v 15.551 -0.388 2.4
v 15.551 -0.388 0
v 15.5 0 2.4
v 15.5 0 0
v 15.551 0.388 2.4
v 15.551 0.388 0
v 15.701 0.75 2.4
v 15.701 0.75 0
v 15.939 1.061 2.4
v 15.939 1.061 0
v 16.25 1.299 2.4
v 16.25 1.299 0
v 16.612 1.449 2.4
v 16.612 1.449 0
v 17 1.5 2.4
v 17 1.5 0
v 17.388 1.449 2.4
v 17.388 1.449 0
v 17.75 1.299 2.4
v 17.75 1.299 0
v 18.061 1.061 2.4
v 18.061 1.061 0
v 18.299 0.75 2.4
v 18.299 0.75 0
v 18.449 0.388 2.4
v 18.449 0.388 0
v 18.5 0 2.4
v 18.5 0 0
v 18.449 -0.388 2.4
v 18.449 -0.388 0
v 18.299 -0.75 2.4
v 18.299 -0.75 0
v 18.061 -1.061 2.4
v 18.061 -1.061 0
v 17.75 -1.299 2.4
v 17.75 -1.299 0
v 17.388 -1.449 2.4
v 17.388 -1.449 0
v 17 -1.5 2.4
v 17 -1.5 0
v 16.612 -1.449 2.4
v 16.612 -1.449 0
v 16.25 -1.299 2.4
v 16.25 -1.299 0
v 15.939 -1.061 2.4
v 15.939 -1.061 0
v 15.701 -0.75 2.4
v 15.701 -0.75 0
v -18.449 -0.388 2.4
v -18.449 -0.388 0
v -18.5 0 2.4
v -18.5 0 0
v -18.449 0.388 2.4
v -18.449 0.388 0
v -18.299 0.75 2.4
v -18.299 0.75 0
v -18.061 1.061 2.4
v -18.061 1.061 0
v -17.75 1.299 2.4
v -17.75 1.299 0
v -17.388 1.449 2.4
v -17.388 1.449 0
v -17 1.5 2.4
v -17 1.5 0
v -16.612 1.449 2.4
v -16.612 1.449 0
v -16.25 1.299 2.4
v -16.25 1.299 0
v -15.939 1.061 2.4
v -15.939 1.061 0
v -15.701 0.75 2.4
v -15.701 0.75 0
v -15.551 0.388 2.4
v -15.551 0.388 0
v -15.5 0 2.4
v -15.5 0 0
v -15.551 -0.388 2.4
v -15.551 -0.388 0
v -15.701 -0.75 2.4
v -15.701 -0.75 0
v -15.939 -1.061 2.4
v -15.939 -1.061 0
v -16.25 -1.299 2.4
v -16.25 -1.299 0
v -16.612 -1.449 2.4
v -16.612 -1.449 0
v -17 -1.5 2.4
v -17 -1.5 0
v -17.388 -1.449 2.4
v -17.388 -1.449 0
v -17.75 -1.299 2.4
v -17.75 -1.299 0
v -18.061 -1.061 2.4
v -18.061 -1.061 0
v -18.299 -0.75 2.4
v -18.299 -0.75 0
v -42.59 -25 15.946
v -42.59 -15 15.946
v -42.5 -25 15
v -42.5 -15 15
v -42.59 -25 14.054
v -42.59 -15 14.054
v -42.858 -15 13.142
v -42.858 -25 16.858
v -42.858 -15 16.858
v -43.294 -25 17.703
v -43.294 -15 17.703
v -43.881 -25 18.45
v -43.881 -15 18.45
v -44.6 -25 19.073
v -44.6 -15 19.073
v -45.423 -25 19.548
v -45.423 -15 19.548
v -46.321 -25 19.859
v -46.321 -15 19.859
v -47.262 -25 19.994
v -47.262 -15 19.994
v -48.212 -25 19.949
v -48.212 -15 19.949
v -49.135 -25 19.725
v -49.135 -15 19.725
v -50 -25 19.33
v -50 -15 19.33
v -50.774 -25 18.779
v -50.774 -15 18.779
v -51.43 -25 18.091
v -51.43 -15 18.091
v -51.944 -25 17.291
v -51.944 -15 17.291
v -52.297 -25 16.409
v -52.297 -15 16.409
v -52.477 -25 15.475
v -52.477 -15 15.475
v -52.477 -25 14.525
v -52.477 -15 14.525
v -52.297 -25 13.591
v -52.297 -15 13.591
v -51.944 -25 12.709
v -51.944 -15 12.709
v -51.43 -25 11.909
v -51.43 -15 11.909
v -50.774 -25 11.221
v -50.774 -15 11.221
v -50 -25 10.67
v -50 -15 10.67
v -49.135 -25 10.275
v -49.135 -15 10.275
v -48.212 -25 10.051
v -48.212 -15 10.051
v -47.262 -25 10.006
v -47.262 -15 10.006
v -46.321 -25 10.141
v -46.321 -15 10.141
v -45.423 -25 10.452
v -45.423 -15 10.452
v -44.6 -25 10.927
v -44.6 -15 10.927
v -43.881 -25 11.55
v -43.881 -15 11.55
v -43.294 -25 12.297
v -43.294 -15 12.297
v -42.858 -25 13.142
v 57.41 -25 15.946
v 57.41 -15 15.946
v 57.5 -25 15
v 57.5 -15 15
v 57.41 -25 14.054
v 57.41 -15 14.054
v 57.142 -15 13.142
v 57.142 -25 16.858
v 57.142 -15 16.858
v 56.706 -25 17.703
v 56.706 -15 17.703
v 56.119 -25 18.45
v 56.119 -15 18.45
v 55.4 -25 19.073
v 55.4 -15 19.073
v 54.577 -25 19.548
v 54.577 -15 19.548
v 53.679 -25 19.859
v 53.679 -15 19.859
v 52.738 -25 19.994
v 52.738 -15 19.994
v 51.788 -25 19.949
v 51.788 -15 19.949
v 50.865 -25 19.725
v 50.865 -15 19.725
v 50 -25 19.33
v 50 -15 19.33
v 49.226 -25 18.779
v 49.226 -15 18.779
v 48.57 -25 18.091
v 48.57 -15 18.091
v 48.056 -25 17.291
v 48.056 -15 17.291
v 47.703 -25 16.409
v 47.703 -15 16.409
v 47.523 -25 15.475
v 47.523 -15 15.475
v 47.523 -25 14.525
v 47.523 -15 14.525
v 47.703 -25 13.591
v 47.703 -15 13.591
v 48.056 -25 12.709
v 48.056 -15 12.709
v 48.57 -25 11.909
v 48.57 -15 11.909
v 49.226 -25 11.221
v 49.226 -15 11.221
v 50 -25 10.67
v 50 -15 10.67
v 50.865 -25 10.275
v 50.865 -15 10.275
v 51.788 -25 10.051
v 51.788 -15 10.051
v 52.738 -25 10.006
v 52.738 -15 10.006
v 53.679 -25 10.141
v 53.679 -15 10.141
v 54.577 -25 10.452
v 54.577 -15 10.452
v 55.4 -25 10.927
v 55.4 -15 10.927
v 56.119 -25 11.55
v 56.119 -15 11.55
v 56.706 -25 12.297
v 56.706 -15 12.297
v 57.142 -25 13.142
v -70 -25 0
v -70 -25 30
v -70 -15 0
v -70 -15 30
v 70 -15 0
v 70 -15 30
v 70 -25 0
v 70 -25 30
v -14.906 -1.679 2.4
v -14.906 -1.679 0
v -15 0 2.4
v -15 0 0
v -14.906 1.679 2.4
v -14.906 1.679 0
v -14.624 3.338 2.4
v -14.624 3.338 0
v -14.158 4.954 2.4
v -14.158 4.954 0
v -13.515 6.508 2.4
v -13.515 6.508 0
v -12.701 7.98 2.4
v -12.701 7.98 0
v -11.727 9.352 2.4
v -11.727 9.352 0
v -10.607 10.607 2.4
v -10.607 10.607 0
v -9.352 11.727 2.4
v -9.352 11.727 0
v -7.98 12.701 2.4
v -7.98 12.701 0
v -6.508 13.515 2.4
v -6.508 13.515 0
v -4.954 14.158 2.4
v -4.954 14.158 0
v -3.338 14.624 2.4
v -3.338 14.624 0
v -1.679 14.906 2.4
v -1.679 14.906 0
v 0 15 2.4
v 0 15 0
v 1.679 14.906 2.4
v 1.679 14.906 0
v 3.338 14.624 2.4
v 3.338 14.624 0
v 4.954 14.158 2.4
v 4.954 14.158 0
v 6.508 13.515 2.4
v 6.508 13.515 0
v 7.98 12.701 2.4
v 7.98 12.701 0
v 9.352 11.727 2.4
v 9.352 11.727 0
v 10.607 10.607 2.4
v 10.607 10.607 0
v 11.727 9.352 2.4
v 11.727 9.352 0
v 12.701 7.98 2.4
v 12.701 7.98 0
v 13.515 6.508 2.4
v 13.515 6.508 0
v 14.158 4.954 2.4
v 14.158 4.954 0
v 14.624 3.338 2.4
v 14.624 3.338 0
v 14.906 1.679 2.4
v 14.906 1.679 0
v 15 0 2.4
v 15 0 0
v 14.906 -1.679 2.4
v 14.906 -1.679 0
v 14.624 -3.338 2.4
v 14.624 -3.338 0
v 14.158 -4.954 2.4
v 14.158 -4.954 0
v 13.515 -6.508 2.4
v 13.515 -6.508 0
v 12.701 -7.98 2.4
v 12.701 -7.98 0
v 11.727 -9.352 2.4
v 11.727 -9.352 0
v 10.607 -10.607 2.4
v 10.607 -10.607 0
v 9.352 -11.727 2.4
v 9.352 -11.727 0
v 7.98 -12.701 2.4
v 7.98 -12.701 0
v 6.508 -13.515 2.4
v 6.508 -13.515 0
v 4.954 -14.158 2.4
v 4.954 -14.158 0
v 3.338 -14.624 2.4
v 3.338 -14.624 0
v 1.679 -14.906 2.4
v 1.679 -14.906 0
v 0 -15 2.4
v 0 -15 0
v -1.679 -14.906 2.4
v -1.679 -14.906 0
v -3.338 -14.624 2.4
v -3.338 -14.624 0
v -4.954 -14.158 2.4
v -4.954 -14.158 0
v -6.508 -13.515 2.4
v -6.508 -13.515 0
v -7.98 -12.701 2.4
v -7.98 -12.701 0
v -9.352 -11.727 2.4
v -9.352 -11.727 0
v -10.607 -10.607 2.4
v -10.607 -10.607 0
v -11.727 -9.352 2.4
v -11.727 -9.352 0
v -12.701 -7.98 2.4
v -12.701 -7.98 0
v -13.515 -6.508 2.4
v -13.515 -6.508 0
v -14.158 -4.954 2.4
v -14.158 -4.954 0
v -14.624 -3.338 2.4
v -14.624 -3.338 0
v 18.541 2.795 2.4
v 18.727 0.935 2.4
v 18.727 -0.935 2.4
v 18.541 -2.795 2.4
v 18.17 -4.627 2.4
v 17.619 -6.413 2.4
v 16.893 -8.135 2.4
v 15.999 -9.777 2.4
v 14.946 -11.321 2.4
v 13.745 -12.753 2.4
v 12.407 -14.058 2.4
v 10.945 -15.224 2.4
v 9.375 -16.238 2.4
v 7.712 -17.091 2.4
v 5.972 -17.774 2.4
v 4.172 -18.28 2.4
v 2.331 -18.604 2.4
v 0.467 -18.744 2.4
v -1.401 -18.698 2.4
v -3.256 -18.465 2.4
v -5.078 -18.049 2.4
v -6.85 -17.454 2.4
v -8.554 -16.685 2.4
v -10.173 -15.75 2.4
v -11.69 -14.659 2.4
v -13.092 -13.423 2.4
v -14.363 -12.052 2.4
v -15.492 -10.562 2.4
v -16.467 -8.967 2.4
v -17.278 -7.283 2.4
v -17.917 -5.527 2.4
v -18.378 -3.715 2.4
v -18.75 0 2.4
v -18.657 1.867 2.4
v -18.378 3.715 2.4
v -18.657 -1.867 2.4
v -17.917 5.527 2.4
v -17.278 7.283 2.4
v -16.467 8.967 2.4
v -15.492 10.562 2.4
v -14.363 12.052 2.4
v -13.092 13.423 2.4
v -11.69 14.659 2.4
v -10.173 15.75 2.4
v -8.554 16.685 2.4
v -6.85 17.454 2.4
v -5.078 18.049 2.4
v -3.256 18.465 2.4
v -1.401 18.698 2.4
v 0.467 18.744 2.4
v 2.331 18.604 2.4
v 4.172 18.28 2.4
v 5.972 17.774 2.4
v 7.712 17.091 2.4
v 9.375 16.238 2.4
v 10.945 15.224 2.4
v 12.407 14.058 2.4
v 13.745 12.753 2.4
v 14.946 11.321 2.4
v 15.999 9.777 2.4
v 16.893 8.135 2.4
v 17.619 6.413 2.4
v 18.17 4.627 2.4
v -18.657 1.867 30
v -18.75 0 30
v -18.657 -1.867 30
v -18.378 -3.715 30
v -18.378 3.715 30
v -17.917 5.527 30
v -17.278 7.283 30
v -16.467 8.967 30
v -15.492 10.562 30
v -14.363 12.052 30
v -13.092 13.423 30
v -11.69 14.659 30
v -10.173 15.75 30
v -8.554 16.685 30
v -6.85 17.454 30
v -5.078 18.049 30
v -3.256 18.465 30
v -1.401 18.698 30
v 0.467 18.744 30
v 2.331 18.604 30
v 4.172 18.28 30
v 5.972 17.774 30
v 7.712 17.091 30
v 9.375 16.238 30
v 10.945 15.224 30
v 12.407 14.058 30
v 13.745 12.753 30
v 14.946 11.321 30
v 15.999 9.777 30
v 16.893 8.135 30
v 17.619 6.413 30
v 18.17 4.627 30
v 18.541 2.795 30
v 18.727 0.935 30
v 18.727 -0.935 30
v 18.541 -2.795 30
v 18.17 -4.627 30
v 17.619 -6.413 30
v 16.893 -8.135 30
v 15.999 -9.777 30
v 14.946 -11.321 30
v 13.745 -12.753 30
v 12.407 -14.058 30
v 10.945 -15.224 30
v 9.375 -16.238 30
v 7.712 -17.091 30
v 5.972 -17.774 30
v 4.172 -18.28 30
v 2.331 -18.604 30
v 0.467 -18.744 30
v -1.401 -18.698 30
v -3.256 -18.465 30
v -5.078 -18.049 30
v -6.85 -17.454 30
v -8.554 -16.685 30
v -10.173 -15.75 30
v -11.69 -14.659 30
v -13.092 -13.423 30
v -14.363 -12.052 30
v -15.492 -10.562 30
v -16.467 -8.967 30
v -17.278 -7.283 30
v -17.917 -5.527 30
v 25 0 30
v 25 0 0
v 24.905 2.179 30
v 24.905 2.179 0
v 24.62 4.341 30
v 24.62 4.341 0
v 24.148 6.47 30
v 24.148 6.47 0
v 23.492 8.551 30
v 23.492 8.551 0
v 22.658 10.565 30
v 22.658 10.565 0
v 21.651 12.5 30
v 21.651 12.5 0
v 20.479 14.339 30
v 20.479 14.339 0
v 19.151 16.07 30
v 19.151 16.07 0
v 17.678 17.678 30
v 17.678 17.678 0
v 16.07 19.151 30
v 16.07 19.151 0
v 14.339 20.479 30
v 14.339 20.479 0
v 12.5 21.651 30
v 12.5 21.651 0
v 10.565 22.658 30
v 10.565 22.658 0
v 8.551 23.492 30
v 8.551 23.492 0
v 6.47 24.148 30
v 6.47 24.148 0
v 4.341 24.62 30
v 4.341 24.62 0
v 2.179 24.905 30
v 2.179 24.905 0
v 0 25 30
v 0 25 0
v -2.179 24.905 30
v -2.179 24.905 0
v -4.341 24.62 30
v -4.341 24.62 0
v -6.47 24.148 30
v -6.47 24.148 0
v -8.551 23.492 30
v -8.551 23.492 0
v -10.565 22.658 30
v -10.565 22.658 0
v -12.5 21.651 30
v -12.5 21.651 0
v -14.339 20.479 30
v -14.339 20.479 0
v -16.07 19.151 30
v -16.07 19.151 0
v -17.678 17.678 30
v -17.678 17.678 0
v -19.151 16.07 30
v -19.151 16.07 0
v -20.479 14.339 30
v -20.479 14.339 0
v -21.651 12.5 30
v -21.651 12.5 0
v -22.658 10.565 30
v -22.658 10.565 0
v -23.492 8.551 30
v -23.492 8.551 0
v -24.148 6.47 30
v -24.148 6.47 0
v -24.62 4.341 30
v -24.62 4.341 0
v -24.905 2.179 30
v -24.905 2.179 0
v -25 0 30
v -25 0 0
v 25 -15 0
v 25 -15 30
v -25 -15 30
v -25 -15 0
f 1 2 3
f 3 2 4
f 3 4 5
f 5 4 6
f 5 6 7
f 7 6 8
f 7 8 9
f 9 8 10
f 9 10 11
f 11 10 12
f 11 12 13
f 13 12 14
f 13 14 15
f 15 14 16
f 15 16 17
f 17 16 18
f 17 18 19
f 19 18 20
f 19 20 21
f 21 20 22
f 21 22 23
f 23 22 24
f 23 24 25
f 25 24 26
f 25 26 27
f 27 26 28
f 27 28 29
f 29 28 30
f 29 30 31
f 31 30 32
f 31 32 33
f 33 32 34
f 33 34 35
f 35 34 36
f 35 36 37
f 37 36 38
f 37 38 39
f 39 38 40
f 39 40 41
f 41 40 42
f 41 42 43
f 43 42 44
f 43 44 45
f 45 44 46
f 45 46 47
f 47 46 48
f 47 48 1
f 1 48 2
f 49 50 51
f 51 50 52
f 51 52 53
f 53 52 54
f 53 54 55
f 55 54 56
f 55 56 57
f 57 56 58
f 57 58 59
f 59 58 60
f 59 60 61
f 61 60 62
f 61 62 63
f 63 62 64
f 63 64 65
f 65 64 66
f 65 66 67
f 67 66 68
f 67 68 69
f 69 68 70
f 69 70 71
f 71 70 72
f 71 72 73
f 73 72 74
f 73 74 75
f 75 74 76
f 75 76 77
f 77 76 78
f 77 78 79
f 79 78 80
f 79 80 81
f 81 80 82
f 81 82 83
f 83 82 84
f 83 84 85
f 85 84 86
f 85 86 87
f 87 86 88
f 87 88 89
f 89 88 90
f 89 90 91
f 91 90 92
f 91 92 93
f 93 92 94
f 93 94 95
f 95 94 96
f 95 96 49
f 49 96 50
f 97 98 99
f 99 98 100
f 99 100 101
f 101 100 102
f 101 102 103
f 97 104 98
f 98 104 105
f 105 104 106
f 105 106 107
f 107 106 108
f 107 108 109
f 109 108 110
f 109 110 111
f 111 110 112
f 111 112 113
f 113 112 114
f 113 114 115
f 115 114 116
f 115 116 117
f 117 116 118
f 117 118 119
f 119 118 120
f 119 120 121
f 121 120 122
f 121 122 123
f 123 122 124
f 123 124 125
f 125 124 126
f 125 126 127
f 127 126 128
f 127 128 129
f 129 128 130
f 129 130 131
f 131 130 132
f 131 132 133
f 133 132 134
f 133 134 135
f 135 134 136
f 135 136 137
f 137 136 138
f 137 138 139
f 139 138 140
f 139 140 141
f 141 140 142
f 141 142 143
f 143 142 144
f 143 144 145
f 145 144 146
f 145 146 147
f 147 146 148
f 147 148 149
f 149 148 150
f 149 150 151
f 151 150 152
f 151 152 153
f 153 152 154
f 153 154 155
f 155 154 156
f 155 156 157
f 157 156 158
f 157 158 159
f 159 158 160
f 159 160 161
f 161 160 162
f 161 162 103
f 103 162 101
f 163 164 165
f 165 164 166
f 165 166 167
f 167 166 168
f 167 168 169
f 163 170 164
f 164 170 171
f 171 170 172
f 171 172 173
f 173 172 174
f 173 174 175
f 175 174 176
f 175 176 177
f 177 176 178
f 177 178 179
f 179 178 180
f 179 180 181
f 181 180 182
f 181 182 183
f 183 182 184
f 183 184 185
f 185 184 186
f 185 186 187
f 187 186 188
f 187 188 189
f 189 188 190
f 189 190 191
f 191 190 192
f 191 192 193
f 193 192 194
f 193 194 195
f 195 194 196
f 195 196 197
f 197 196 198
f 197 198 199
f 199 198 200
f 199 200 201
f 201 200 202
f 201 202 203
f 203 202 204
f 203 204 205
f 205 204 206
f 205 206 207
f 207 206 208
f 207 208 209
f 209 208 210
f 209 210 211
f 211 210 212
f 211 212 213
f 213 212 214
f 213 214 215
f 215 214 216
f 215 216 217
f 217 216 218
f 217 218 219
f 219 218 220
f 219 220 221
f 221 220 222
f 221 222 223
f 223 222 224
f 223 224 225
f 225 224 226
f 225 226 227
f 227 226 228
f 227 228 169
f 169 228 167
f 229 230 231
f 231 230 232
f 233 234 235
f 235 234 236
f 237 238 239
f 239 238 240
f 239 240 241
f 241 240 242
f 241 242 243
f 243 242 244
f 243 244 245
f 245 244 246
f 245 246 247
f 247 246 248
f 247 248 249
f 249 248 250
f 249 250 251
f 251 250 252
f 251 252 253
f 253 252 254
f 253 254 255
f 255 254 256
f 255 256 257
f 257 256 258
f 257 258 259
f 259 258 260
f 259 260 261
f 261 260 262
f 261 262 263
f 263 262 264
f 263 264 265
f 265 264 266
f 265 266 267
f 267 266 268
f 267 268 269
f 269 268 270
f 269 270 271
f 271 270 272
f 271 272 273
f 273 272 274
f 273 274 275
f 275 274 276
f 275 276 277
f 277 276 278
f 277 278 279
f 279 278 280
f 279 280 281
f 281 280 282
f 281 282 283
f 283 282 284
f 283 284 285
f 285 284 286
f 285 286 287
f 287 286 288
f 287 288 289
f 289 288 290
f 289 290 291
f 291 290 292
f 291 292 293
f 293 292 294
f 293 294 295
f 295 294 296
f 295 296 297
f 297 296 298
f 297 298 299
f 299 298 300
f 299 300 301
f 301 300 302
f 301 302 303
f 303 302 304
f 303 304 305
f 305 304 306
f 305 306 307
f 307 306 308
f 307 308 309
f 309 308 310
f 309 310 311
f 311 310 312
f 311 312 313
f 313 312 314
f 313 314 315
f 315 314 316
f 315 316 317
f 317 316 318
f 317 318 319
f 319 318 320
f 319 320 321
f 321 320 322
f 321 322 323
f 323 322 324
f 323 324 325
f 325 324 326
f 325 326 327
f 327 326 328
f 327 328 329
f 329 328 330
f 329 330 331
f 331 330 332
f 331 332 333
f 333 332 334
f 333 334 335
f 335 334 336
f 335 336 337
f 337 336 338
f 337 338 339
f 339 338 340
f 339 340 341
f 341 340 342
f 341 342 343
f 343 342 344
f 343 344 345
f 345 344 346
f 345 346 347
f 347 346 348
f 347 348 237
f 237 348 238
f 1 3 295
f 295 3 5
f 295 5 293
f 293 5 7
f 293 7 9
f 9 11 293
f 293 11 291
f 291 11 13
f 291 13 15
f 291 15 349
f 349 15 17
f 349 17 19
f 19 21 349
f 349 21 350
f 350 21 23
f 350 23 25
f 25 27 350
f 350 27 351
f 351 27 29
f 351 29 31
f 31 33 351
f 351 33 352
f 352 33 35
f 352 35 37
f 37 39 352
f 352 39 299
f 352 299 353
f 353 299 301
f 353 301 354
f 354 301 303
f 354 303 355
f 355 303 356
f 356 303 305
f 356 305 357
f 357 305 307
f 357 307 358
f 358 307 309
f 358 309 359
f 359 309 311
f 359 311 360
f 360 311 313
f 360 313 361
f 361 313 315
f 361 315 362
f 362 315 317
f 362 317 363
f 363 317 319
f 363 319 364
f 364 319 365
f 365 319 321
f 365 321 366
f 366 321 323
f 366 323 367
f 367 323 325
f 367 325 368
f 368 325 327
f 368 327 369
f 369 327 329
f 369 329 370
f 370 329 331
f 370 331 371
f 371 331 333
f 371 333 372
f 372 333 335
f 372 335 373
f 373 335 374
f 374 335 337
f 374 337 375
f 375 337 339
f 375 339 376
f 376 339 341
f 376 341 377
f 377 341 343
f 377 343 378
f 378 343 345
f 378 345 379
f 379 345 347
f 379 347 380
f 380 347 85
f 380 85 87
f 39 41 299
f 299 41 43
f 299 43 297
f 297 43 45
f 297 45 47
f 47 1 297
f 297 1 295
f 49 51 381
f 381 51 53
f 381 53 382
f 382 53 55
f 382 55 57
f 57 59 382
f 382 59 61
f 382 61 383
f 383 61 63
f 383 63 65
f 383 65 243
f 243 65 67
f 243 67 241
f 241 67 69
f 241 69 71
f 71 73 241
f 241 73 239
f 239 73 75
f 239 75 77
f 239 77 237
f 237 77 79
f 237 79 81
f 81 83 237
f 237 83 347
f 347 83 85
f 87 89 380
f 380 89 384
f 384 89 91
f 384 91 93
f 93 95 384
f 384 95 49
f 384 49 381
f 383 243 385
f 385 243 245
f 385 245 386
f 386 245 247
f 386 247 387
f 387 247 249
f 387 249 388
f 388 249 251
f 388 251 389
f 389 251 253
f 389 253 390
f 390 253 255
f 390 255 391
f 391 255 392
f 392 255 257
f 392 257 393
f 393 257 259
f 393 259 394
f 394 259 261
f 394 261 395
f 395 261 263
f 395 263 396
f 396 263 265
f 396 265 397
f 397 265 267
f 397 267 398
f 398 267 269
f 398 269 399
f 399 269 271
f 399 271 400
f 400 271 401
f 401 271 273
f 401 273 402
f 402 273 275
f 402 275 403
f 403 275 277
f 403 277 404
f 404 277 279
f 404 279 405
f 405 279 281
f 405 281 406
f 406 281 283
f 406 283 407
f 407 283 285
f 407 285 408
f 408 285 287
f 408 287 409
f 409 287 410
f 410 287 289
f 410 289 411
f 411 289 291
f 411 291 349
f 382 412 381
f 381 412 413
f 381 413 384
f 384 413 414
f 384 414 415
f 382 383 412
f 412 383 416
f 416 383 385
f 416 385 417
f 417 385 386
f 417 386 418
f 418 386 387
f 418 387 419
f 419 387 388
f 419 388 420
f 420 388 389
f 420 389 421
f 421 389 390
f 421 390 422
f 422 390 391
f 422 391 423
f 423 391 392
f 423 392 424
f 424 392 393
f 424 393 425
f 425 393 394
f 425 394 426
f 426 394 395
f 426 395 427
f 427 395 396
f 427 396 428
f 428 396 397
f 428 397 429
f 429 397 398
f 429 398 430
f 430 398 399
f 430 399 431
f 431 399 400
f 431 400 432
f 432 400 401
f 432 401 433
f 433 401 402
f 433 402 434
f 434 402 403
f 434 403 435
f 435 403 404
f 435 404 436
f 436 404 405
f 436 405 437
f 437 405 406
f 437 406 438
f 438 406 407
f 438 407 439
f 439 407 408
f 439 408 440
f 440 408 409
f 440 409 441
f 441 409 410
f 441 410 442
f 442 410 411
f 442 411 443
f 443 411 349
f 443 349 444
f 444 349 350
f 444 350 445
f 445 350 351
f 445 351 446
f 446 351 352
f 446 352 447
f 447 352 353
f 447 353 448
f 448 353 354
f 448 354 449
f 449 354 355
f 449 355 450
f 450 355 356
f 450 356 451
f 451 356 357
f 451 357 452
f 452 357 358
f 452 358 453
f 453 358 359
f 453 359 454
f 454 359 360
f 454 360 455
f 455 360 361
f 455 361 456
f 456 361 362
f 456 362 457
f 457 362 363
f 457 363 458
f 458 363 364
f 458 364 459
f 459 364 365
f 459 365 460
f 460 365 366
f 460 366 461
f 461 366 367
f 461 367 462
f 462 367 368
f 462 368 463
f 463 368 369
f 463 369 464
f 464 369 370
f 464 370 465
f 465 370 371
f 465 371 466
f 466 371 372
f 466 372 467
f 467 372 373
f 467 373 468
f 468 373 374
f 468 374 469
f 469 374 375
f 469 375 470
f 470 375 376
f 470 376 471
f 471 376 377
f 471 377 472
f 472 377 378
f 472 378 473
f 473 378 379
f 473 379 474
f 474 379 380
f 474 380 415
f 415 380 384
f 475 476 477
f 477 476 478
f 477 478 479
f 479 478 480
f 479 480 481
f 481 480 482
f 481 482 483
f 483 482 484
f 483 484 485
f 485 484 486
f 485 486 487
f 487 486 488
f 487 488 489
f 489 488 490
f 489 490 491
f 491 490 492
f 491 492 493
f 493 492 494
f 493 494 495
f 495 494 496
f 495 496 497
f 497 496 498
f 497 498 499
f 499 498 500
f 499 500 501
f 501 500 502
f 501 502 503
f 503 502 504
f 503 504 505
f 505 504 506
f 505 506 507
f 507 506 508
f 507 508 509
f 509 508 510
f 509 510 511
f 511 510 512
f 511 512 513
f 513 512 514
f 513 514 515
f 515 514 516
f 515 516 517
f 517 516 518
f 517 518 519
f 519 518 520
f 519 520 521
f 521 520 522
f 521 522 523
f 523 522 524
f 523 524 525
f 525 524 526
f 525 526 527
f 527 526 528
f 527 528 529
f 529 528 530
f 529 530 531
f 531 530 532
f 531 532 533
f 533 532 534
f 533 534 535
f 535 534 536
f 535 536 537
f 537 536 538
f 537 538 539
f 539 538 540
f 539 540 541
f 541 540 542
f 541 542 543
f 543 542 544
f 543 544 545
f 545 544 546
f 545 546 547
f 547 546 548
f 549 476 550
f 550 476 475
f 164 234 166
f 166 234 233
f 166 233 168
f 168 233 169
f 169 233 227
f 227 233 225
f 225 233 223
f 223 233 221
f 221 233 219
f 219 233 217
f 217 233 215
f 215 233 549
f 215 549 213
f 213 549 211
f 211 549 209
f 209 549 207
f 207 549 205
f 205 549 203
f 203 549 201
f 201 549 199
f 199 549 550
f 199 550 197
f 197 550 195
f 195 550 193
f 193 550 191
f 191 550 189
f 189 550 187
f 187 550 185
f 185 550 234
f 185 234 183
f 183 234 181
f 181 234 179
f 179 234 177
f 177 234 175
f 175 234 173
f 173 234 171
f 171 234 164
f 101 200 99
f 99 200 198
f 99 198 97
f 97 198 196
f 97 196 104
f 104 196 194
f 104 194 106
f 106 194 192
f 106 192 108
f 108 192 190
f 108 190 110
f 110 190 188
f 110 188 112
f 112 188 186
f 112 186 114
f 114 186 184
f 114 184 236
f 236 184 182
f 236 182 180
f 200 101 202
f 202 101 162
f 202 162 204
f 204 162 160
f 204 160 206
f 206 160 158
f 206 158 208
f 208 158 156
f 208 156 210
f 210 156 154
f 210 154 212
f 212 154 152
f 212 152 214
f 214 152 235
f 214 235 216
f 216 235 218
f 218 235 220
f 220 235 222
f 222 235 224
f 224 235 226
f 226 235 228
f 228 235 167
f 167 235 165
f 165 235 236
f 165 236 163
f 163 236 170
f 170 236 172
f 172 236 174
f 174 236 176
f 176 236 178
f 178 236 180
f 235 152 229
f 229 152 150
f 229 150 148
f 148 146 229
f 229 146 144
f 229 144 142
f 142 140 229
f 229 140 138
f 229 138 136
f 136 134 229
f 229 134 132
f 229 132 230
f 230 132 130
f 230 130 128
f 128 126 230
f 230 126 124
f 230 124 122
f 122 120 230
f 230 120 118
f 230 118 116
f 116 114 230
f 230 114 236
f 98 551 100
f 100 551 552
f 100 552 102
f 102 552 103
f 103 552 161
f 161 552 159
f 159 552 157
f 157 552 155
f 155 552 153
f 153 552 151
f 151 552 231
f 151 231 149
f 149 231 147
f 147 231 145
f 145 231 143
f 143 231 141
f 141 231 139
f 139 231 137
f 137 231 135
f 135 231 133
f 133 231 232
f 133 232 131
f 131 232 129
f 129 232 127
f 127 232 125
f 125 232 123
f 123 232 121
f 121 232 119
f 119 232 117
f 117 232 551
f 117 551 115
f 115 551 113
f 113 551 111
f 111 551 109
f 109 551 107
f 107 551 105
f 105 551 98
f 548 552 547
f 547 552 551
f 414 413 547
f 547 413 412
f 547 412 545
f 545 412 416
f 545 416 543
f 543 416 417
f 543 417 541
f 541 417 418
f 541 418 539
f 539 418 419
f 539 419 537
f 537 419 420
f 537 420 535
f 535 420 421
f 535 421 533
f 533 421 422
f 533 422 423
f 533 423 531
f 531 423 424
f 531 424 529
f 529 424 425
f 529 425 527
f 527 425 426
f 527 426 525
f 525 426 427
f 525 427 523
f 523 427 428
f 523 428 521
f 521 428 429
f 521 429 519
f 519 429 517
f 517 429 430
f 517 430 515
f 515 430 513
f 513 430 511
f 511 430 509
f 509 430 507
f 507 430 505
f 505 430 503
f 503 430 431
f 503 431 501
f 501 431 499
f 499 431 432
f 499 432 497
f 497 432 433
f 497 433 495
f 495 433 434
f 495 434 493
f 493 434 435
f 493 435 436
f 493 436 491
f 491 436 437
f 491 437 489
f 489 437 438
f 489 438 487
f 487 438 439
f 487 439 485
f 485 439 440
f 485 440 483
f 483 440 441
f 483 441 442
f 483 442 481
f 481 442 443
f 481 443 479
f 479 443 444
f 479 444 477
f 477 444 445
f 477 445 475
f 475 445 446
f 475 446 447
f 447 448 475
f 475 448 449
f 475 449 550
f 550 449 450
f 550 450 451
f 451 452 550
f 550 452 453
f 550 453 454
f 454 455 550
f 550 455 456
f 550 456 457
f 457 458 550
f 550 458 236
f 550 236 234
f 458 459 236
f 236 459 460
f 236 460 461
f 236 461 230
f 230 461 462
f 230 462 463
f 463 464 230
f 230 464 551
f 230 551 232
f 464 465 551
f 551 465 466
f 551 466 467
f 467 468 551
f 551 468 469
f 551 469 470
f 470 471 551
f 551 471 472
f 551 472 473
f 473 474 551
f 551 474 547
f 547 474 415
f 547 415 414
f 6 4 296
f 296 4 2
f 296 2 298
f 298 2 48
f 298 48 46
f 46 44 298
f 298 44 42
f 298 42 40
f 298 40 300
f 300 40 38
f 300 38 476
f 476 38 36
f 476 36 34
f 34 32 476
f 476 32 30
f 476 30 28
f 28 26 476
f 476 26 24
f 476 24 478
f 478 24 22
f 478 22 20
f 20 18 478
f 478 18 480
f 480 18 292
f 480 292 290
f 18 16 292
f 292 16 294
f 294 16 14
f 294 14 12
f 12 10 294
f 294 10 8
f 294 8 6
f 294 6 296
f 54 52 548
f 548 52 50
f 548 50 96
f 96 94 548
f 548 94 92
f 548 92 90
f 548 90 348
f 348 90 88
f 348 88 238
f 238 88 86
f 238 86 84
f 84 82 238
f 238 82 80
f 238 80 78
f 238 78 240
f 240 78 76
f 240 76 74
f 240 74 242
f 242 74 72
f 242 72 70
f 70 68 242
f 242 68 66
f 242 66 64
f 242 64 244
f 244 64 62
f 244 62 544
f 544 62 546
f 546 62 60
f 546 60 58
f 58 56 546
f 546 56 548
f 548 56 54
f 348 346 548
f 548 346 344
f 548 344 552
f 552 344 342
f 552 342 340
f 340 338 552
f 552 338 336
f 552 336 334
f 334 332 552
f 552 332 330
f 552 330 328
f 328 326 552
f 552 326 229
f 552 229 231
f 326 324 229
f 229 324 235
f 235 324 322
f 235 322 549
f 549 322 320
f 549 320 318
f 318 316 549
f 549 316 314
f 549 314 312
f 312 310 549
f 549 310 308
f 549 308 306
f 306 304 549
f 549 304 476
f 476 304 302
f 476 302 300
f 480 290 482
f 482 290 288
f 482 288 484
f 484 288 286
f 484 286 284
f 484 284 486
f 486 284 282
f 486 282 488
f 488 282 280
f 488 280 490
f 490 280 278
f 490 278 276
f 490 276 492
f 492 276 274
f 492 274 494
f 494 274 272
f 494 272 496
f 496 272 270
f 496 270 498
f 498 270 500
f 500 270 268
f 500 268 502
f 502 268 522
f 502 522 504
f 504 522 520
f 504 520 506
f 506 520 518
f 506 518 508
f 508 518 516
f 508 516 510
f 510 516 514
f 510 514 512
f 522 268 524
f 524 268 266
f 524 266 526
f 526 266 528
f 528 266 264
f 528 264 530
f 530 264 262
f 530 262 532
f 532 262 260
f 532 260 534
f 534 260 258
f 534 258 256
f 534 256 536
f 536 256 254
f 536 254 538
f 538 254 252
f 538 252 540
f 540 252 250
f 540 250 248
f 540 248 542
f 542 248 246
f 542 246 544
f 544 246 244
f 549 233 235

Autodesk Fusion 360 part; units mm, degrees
sketch "Sketch1" plane through (0, 0, 0) normal (0, 0, 1) x (1, 0, 0)
  circle A0 centre (0, 0) radius 18.75
  line L0 (20, -15) -> (20, -25)
  line L1 (20, -25) -> (-20, -25)
  line L2 (-20, -25) -> (-20, -15)
  line L3 (0, -25) -> (50, -25)
  line L4 (50, -25) -> (-50, -25)
  line L5 (-50, -25) -> (-50, -15)
  line L6 (50, -15) -> (50, -25)
  line L7 (-25, 0) -> (-25, -15)
  line L8 (25, 0) -> (25, -15)
  line L9 (-20, -15) -> (-11.25, -15)
  line L10 (11.25, -15) -> (20, -15)
  arc A1 (20, -15) -> (-20, -15) centre (0, 0) ccw
  line L11 (-20, -15) -> (-11.25, -15)
  line L12 (11.25, -15) -> (20, -15)
  line L13 (-50, -15) -> (-11.25, -15)
  line L14 (11.25, -15) -> (50, -15)
  dimension "d1" = 37.5
extrude "Extrude1" add sketch "Sketch1" along normal blind 30 contours A0 L9 L10 A1 L11 L12 L13 L14 | A0 L0 L1 L2 L3 L4 L9 L10 L11 L12 L13 L14 | L7 A1 L13 | L2 L4 L5 L13 | L0 L3 L4 L6 L14 | L8 A1 L14
sketch "Sketch2" plane through (0, 0, 0) normal (0, 0, -1) x (1, 0, 0)
  circle A0 centre (0, 0) radius 18.75
  line L0 (-25, 15) -> (-25, 0)
  arc A1 (-25, 0) -> (25, 0) centre (0, 0) ccw
  line L1 (25, 0) -> (25, 15)
  line L2 (25, 15) -> (50, 15)
  line L3 (50, 15) -> (50, 25)
  line L4 (50, 25) -> (-50, 25)
  line L5 (-50, 25) -> (-50, 15)
  line L6 (-50, 15) -> (-25, 15)
  circle A2 centre (0, 0) radius 15
  line L7 (0, 0) -> (18.75, 0)
  line L8 (18.75, 0) -> (17, 0)
  circle A3 centre (17, 0) radius 1.2
  line L9 (0, 0) -> (0, -15)
  circle A4 centre (-17, 0) radius 1.2
  circle A5 centre (-17, 0) radius 1.5
  circle A6 centre (17, 0) radius 1.5
  dimension "d4" = 30
  dimension "d7" = 2.4
  dimension "d24" = 3
  dimension "d25" = 3
extrude "Extrude3" add sketch "Sketch2" against normal blind 2.4 contours A0 | L7 L8 A3 A6 | L7 L8 A3 A6 | A5
sketch "Sketch3" plane through (0, -15, 0) normal (0, 1, 0) x (-1, 0, 0)
  line L0 (-50, 0) -> (-25, 0)
  line L1 (-25, 0) -> (-25, 30)
  line L2 (-25, 30) -> (-50, 30)
  line L3 (-50, 30) -> (-50, 0)
  line L4 (-50, 30) -> (-37.5, 30)
  line L5 (-37.5, 0) -> (-37.5, 30)
  circle A0 centre (-37.5, 15) radius 6
  line L6 (-50, 30) -> (0, 30)
  line L7 (0, 30) -> (0, 0)
  circle A1 centre (37.5, 15) radius 6
  dimension "d10" = 12
extrude "Extrude5" add 1 faces at (50, -18.3333, 10) along direction (1, 0, 0) blind 20
extrude "Extrude6" add 1 faces at (-50, -21.6667, 10) along direction (-1, 0, 0) blind 20
sketch "Sketch4" plane through (0, -15, 0) normal (0, 1, 0) x (-1, 0, 0)
  line L0 (25, 0) -> (70, 0)
  line L1 (70, 0) -> (70, 30)
  line L2 (70, 30) -> (25, 30)
  line L3 (25, 30) -> (25, 0)
  line L4 (70, 0) -> (47.5, 0)
  circle A0 centre (47.5, 15) radius 5
  circle A1 centre (-52.5, 15) radius 5
  line L5 (47.5, 0) -> (47.5, 10)
  line L6 (47.5, 20) -> (47.5, 30)
  dimension "d19" = 10
  dimension "d20" = 100
  dimension "d21" = 10
extrude "Extrude7" cut sketch "Sketch4" against normal blind 24 contours A0 | A1
extrude "Extrude8" cut sketch "Sketch2" against normal blind 26 contours A5
extrude "Extrude9" cut sketch "Sketch2" against normal blind 40 contours L7 L8 A3 A6 | L7 L8 A3 A6
